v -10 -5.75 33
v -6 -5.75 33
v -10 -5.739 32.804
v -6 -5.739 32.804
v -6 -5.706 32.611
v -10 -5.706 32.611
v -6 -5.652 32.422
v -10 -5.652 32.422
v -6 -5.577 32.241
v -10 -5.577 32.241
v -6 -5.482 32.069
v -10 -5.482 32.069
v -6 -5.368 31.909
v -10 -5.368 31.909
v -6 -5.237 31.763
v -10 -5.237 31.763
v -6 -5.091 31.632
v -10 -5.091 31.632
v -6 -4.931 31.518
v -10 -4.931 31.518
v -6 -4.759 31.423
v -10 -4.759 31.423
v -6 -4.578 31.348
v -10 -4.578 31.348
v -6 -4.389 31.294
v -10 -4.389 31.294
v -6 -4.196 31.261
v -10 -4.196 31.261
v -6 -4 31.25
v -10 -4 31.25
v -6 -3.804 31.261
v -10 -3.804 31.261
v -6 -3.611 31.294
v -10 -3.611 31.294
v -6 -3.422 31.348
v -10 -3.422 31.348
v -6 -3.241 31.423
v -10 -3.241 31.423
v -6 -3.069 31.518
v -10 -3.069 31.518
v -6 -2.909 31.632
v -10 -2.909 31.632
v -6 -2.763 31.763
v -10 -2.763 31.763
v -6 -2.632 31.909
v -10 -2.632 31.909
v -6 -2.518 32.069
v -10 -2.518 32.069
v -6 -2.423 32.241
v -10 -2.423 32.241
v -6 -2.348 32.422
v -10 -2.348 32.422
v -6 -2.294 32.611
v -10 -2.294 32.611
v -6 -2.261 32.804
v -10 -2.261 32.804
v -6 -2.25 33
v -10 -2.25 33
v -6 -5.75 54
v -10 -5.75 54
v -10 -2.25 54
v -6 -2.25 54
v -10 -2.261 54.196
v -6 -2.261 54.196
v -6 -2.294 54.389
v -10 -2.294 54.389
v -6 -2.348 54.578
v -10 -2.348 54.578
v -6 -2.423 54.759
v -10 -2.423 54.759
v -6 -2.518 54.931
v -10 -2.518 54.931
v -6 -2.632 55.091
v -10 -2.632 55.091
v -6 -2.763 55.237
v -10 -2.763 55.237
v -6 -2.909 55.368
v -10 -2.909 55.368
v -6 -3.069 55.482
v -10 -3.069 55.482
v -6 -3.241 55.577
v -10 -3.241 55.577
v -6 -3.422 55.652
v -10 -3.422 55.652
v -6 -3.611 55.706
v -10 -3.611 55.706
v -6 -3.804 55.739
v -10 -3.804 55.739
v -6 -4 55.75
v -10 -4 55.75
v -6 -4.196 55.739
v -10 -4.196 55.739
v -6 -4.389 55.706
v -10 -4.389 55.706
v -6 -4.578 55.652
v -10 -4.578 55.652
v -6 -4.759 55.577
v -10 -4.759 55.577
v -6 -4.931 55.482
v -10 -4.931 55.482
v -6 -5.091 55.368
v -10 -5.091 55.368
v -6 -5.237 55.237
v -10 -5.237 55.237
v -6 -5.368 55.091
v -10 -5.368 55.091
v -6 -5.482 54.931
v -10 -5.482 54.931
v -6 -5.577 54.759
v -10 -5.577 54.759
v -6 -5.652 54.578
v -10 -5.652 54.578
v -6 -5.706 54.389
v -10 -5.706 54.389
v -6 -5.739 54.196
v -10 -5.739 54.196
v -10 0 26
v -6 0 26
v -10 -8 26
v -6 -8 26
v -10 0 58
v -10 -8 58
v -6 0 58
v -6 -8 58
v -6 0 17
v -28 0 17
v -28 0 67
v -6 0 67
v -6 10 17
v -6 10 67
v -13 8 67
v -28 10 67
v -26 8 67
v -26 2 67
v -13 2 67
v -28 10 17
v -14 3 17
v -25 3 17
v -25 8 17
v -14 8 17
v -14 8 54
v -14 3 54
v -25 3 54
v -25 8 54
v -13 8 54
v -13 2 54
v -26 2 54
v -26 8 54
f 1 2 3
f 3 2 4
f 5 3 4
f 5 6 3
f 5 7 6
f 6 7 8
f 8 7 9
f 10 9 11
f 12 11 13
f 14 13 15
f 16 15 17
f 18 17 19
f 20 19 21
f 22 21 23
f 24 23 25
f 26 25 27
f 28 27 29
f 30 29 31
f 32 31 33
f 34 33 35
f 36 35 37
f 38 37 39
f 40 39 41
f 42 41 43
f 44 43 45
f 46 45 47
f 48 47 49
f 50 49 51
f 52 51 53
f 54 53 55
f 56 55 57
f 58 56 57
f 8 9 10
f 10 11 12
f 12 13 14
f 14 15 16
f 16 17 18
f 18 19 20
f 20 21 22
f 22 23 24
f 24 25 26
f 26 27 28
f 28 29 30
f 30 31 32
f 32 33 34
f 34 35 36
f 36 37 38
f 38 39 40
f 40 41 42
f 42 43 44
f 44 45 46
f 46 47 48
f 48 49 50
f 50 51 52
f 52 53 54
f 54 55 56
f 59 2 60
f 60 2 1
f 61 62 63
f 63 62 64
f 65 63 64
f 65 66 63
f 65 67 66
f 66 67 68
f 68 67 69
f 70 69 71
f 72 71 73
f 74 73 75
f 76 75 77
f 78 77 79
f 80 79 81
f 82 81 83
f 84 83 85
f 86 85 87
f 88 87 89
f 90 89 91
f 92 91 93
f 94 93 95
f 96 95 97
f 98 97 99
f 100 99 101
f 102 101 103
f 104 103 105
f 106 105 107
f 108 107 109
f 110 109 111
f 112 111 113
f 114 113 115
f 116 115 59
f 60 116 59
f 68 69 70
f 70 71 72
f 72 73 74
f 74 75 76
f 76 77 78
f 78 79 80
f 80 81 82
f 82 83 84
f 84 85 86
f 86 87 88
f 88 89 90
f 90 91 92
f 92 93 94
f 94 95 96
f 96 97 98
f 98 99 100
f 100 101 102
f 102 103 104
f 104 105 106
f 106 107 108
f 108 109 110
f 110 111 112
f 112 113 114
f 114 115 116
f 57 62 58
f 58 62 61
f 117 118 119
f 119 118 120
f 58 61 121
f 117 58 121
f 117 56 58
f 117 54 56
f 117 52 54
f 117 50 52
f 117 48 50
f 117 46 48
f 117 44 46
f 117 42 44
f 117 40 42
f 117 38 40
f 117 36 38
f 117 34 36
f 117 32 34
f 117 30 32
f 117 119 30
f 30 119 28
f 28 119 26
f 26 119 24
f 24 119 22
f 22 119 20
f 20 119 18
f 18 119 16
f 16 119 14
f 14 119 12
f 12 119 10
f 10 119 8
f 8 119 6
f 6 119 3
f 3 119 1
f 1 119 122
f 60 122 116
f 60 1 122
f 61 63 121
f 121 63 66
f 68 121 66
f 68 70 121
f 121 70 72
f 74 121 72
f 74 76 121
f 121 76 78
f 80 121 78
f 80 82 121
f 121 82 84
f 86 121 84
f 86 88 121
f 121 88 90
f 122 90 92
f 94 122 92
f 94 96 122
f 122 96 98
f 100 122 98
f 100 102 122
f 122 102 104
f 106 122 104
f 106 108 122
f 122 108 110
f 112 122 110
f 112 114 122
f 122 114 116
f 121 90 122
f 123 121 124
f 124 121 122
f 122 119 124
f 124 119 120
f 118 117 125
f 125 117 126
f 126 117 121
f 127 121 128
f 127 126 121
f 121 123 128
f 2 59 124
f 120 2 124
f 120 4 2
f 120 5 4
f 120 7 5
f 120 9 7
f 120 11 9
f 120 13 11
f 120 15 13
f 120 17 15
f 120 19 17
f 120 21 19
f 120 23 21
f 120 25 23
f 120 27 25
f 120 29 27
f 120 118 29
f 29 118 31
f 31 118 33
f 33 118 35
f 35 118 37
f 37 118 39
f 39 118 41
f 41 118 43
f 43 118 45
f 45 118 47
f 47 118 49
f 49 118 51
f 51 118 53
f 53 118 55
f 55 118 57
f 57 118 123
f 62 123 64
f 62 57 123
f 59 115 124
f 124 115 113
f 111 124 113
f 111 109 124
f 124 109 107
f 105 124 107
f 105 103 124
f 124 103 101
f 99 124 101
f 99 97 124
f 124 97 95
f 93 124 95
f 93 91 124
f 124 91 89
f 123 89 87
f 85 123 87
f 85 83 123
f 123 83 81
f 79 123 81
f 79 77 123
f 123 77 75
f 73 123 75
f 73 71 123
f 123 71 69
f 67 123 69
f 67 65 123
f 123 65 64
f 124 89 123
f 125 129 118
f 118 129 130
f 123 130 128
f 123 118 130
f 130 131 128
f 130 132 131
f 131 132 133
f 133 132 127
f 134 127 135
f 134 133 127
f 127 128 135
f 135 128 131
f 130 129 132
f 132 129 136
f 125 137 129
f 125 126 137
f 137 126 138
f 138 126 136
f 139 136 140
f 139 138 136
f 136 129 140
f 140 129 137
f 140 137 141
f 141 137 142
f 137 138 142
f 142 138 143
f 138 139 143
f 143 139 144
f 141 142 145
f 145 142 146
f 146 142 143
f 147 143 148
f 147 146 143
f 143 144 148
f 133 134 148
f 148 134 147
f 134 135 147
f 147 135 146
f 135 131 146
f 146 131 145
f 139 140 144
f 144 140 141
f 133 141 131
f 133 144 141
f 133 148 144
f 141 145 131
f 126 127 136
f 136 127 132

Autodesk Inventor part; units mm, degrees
ref_plane "YZ Plane" through (0, 0, 0) normal (1, 0, 0) x (0, 1, 0)
ref_plane "XZ Plane" through (0, 0, 0) normal (0, 1, 0) x (-1, 0, 0)
ref_plane "XY Plane" through (0, 0, 0) normal (0, 0, 1) x (1, 0, 0)
sketch "Skizze14" plane through (0, 0, 0) normal (0, 1, 0) x (-1, 0, 0)
  line L0 (0, 0) -> (28, 0)
  line L1 (28, 0) -> (28, 67)
  line L2 (28, 67) -> (0, 67)
  line L3 (0, 67) -> (0, 0)
  dimension "d40" = 28
  dimension "d41" = 67
extrude "Extrusion13" add sketch "Skizze14" along normal blind 10
sketch "Skizze15" plane through (-28, 0, 67) normal (0, 0, 1) x (1, 0, 0)
  line L0 (2, 8) -> (15, 8)
  line L1 (15, 8) -> (15, 2)
  line L2 (15, 2) -> (2, 2)
  line L3 (2, 2) -> (2, 8)
  dimension "d44" = 13
  dimension "d45" = 6
extrude "Extrusion14" cut sketch "Skizze15" against normal blind 13
sketch "Skizze16" plane through (-28, 0, 54) normal (0, 0, 1) x (1, 0, 0)
  line L0 (3, 8) -> (14, 8)
  line L1 (14, 8) -> (14, 3)
  line L2 (14, 3) -> (3, 3)
  line L3 (3, 3) -> (3, 8)
  point P0 (28, 0)
extrude "Extrusion15" cut sketch "Skizze16" against normal blind 60
sketch "Skizze21" plane through (0, 0, 0) normal (0, 0, -1) x (-1, 0, 0)
  line L0 (25, 8) -> (25, 3) projected
  line L1 (25, 3) -> (14, 3) projected
  line L2 (14, 3) -> (14, 8) projected
  line L3 (14, 8) -> (25, 8) projected
  line L4 (0, 0) -> (28, 0) projected
  line L5 (28, 0) -> (28, 10) projected
  line L6 (28, 10) -> (0, 10)
  line L7 (0, 10) -> (0, 0)
  line L8 (0, 0) -> (28, 0)
  line L9 (28, 0) -> (28, 10)
extrude "Extrusion20" cut sketch "Skizze21" against normal blind 17
sketch "Skizze23" plane through (-28, 0, 67) normal (0, 0, 1) x (1, 0, 0)
  line L0 (28, 0) -> (28, 10) projected
  line L1 (28, 0) -> (22, 0)
  line L2 (22, 0) -> (22, 10)
  line L3 (22, 10) -> (28, 10)
  line L4 (28, 10) -> (28, 0)
extrude "Extrusion22" cut sketch "Skizze23" against normal blind 60
sketch "Skizze24" plane through (0, 0, 0) normal (0, -1, 0) x (1, 0, 0)
  line L0 (-6, 17) -> (-6, 67) projected
  line L1 (-10, 26) -> (-6, 26)
  line L2 (-6, 26) -> (-6, 58)
  line L3 (-6, 58) -> (-10, 58)
  line L4 (-10, 58) -> (-10, 26)
  point P0 (0, 0)
extrude "Extrusion23" add sketch "Skizze24" along normal blind 8
sketch "Skizze25" plane through (-10, 0, 26) normal (-1, 0, 0) x (0, 0, 1)
  line L0 (0, 0) -> (0, -8) projected
  line L1 (7, -4) -> (28, -4) construction
  line L2 (7, -5.75) -> (28, -5.75)
  line L3 (28, -2.25) -> (7, -2.25)
  arc A0 (7, -2.25) -> (7, -5.75) centre (7, -4) ccw
  arc A1 (28, -5.75) -> (28, -2.25) centre (28, -4) ccw
  point P0 (-26, 0)
  point P1 (17.5, -4)
  dimension "d70" = 3.5
extrude "Extrusion24" cut sketch "Skizze25" against normal blind 12
sketch "Skizze26" plane through (-10, 0, 26) normal (-1, 0, 0) x (0, 0, 1)
  arc A0 (28, -5.75) -> (28, -2.25) centre (28, -4) ccw projected
  line L0 (28, -5.75) -> (7, -5.75) projected
  arc A1 (7, -2.25) -> (7, -5.75) centre (7, -4) ccw projected
  line L1 (7, -2.25) -> (28, -2.25) projected
  line L2 (0, 0) -> (32, 0) projected
  line L3 (0, 0) -> (0, -8) projected
  line L4 (32, -8) -> (0, -8) projected
  line L5 (32, 0) -> (32, -8) projected
  point P0 (-26, 0)
properties part number "OPB732_CASE_BOTTOM"
